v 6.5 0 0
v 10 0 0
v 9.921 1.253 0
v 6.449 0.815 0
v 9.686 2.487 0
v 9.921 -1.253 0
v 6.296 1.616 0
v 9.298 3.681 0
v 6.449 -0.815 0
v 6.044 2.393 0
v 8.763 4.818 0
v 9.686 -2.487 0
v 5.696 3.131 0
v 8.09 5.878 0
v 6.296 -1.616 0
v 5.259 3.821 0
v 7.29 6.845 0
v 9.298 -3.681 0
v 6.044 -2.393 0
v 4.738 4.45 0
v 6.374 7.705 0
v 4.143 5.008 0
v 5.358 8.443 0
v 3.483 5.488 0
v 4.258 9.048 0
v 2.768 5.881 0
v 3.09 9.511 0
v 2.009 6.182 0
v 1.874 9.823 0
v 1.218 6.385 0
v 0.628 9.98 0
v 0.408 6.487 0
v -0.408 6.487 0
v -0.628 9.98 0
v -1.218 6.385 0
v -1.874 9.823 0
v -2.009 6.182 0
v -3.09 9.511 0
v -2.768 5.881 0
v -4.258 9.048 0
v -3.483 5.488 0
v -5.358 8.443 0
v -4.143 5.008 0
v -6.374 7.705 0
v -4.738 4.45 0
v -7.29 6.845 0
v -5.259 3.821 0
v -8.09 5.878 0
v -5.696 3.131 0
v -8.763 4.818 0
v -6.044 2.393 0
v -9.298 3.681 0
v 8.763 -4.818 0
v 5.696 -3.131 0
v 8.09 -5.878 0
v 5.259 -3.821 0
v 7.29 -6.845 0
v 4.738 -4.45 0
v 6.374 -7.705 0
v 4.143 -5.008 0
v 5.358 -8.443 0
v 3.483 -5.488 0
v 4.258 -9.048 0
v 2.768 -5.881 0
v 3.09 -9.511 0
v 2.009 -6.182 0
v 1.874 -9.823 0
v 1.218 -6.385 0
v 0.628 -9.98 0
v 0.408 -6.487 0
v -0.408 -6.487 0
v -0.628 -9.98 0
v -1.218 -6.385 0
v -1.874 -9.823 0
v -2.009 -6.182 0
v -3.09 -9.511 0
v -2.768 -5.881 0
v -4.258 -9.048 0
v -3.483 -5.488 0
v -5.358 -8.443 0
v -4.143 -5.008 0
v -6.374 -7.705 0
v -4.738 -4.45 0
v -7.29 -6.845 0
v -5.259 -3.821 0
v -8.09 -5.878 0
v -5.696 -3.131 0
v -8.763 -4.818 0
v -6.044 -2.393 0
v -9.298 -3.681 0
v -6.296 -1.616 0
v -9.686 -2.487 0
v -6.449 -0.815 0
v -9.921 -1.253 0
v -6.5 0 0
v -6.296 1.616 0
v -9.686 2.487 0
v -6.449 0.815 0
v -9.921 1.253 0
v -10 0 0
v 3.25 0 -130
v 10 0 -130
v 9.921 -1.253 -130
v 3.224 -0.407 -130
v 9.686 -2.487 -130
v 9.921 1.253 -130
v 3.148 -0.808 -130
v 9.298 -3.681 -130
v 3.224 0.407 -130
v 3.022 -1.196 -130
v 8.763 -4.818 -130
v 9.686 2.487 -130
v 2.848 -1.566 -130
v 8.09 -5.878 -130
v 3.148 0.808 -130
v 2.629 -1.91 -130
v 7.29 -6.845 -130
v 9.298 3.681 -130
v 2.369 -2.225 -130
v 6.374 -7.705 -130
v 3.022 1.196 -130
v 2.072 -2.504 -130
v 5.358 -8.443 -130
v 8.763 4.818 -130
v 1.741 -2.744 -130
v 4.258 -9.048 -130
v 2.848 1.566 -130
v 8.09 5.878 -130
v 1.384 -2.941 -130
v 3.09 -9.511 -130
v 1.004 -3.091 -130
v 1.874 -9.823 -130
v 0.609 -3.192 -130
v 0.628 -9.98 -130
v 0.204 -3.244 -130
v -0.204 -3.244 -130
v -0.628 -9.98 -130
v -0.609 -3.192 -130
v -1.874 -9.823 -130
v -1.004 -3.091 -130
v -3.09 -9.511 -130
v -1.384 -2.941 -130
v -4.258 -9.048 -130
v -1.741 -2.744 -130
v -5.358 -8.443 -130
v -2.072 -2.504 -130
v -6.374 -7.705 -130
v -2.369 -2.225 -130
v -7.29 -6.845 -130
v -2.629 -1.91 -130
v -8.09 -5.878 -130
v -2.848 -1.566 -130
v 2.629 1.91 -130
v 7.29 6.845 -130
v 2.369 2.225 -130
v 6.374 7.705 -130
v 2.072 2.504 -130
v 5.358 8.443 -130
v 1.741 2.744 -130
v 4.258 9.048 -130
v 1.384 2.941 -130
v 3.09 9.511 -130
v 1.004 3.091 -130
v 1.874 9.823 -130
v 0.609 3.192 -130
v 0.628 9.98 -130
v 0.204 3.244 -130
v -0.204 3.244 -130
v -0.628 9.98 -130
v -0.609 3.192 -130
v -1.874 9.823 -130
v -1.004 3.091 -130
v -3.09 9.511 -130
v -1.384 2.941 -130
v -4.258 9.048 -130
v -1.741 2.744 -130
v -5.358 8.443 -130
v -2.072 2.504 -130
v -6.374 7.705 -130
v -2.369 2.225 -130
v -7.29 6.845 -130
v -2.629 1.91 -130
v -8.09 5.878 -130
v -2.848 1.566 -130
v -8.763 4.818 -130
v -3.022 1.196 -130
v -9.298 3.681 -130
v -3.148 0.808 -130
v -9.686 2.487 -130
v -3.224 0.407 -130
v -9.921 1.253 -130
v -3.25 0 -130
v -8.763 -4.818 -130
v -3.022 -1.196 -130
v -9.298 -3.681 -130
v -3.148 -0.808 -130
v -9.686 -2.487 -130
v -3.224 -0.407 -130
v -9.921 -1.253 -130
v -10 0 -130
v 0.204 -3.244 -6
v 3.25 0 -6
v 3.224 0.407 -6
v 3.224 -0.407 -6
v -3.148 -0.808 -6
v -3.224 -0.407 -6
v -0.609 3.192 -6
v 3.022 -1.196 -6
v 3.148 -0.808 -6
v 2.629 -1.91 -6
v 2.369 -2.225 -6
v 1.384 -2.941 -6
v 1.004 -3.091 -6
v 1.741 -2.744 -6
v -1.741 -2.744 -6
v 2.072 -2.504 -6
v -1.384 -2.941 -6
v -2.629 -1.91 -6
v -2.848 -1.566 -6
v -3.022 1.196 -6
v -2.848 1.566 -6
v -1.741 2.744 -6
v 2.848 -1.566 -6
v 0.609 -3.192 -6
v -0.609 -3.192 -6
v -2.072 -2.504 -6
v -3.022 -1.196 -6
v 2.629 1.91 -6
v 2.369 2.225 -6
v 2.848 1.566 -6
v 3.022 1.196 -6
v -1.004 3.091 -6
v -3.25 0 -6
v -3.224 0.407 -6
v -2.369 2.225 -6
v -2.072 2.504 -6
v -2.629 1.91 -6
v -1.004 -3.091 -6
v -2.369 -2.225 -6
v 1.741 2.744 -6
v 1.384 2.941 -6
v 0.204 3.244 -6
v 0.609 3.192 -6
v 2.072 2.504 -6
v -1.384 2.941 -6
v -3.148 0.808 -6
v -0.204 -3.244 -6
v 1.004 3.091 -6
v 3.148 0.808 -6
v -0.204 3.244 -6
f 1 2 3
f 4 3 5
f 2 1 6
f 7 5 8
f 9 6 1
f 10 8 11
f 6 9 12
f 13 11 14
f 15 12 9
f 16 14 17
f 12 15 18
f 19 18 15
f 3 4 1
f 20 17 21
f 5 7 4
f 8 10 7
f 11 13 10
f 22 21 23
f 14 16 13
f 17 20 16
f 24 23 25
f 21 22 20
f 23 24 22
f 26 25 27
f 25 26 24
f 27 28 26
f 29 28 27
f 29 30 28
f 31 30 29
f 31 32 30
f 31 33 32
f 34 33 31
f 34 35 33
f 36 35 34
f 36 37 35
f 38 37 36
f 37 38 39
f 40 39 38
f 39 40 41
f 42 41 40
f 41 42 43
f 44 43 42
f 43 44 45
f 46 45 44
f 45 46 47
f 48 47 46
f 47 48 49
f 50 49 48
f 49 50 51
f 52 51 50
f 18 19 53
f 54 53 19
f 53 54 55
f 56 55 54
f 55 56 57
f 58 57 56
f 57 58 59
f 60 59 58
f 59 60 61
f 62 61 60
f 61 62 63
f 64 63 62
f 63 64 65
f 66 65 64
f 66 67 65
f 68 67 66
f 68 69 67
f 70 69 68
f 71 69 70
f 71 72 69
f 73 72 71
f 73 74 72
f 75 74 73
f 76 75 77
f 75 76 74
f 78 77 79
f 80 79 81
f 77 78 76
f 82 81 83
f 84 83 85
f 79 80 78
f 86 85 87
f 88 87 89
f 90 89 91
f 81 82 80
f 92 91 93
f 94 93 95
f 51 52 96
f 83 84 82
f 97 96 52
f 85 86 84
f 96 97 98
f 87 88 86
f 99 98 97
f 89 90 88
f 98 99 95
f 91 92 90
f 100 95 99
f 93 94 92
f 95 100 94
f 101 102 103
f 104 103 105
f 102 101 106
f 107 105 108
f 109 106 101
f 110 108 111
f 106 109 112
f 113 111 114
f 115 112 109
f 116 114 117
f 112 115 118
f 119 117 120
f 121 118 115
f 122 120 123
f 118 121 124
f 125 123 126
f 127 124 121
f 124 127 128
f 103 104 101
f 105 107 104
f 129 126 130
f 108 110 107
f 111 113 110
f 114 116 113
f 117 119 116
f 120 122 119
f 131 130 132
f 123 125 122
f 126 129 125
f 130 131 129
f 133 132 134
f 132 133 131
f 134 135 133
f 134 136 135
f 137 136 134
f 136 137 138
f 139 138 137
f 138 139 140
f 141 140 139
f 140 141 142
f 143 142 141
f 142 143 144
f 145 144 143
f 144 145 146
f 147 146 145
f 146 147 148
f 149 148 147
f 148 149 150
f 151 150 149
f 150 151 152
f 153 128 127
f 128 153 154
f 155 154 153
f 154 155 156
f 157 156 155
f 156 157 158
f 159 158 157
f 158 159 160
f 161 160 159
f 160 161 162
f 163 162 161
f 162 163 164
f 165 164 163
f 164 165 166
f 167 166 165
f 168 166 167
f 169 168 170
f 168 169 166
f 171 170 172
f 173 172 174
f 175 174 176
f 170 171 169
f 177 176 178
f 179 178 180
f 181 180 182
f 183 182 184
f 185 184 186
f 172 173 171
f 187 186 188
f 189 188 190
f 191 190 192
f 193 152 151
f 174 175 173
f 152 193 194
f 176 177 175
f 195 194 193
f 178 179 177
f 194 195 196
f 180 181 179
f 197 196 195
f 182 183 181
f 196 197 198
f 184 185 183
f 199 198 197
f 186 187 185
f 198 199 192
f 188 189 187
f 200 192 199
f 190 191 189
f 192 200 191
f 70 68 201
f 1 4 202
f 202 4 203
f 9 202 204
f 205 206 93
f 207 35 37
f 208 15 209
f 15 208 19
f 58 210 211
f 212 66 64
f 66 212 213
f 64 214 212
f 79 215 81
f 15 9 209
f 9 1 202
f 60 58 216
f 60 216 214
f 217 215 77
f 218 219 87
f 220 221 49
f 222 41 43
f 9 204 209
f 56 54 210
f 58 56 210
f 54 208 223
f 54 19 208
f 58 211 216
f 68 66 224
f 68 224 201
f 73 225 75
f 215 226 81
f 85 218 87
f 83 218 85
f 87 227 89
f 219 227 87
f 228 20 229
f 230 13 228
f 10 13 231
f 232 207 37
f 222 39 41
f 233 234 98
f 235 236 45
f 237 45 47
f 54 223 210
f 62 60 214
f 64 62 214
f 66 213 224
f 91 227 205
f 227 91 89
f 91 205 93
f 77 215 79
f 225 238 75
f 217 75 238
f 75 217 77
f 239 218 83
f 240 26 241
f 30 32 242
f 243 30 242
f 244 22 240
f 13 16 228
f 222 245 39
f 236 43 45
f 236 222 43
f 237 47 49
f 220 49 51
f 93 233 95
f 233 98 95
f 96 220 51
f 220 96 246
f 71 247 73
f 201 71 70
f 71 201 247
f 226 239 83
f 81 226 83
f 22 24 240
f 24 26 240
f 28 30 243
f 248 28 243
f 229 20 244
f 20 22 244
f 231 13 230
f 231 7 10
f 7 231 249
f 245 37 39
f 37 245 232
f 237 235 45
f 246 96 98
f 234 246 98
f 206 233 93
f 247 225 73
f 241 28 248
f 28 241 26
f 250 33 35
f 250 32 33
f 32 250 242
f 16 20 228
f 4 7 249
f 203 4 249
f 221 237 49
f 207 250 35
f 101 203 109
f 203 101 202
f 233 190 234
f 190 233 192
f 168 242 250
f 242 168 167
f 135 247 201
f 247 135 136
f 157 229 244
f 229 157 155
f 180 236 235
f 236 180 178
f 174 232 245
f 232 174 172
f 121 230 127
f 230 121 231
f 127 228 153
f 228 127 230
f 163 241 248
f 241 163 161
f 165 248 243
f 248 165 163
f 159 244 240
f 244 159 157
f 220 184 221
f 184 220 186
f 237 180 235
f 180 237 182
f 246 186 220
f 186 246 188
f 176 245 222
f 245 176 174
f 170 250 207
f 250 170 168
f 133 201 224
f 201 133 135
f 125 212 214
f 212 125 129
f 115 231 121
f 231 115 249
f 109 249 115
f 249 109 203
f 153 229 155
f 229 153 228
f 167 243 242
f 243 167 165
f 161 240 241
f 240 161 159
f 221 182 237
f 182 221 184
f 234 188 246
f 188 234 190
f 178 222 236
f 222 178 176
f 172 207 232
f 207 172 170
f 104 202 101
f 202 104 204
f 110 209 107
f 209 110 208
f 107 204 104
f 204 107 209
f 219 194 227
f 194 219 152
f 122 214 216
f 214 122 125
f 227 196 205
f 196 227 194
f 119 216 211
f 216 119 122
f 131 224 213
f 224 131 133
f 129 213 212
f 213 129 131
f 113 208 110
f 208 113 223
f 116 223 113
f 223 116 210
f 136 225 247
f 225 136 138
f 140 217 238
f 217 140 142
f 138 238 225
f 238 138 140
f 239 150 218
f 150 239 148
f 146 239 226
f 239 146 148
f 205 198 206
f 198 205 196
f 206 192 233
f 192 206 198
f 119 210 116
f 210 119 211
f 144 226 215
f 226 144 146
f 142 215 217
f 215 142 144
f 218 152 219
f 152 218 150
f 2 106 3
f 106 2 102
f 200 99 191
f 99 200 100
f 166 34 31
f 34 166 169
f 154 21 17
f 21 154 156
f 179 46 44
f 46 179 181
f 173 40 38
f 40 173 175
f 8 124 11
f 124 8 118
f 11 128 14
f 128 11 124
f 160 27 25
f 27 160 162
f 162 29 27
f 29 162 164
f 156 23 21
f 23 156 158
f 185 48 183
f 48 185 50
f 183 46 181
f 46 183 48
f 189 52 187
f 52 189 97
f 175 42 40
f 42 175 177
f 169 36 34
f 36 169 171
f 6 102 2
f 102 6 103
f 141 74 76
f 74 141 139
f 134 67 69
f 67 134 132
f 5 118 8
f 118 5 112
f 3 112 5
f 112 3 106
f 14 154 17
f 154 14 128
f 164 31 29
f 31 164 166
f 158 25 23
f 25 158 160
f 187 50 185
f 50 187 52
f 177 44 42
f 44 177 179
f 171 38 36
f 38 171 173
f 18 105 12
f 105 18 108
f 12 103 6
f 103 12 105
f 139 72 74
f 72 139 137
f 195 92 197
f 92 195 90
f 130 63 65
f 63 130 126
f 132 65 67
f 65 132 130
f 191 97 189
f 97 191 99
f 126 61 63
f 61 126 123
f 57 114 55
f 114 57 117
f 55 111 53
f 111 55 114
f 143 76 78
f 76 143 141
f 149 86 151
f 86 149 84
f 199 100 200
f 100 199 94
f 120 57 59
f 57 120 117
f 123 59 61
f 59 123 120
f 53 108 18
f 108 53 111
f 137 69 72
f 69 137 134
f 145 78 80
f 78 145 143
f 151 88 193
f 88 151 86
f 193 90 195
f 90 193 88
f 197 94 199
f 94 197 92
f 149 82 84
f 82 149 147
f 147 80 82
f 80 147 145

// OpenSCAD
$fn = 50;


difference() {
	union() {
		translate(v = [0, 0, -130.0000000000]) {
			cylinder(h = 130, r = 10.0000000000);
		}
		cylinder(h = 0, r = 16.0000000000);
	}
	union() {
		translate(v = [0, 0, 0]) {
			rotate(a = [0, 0, 0]) {
				difference() {
					union() {
						#translate(v = [0, 0, -130.0000000000]) {
							cylinder(h = 130, r = 2.2500000000);
						}
						#translate(v = [0, 0, -6]) {
							cylinder(h = 6, r = 10.0000000000, r1 = 3.2500000000, r2 = 6.5000000000);
						}
						#translate(v = [0, 0, -130.0000000000]) {
							cylinder(h = 130, r = 3.2500000000);
						}
						#translate(v = [0, 0, -130.0000000000]) {
							cylinder(h = 130, r = 2.2500000000);
						}
					}
					union();
				}
			}
		}
	}
}
